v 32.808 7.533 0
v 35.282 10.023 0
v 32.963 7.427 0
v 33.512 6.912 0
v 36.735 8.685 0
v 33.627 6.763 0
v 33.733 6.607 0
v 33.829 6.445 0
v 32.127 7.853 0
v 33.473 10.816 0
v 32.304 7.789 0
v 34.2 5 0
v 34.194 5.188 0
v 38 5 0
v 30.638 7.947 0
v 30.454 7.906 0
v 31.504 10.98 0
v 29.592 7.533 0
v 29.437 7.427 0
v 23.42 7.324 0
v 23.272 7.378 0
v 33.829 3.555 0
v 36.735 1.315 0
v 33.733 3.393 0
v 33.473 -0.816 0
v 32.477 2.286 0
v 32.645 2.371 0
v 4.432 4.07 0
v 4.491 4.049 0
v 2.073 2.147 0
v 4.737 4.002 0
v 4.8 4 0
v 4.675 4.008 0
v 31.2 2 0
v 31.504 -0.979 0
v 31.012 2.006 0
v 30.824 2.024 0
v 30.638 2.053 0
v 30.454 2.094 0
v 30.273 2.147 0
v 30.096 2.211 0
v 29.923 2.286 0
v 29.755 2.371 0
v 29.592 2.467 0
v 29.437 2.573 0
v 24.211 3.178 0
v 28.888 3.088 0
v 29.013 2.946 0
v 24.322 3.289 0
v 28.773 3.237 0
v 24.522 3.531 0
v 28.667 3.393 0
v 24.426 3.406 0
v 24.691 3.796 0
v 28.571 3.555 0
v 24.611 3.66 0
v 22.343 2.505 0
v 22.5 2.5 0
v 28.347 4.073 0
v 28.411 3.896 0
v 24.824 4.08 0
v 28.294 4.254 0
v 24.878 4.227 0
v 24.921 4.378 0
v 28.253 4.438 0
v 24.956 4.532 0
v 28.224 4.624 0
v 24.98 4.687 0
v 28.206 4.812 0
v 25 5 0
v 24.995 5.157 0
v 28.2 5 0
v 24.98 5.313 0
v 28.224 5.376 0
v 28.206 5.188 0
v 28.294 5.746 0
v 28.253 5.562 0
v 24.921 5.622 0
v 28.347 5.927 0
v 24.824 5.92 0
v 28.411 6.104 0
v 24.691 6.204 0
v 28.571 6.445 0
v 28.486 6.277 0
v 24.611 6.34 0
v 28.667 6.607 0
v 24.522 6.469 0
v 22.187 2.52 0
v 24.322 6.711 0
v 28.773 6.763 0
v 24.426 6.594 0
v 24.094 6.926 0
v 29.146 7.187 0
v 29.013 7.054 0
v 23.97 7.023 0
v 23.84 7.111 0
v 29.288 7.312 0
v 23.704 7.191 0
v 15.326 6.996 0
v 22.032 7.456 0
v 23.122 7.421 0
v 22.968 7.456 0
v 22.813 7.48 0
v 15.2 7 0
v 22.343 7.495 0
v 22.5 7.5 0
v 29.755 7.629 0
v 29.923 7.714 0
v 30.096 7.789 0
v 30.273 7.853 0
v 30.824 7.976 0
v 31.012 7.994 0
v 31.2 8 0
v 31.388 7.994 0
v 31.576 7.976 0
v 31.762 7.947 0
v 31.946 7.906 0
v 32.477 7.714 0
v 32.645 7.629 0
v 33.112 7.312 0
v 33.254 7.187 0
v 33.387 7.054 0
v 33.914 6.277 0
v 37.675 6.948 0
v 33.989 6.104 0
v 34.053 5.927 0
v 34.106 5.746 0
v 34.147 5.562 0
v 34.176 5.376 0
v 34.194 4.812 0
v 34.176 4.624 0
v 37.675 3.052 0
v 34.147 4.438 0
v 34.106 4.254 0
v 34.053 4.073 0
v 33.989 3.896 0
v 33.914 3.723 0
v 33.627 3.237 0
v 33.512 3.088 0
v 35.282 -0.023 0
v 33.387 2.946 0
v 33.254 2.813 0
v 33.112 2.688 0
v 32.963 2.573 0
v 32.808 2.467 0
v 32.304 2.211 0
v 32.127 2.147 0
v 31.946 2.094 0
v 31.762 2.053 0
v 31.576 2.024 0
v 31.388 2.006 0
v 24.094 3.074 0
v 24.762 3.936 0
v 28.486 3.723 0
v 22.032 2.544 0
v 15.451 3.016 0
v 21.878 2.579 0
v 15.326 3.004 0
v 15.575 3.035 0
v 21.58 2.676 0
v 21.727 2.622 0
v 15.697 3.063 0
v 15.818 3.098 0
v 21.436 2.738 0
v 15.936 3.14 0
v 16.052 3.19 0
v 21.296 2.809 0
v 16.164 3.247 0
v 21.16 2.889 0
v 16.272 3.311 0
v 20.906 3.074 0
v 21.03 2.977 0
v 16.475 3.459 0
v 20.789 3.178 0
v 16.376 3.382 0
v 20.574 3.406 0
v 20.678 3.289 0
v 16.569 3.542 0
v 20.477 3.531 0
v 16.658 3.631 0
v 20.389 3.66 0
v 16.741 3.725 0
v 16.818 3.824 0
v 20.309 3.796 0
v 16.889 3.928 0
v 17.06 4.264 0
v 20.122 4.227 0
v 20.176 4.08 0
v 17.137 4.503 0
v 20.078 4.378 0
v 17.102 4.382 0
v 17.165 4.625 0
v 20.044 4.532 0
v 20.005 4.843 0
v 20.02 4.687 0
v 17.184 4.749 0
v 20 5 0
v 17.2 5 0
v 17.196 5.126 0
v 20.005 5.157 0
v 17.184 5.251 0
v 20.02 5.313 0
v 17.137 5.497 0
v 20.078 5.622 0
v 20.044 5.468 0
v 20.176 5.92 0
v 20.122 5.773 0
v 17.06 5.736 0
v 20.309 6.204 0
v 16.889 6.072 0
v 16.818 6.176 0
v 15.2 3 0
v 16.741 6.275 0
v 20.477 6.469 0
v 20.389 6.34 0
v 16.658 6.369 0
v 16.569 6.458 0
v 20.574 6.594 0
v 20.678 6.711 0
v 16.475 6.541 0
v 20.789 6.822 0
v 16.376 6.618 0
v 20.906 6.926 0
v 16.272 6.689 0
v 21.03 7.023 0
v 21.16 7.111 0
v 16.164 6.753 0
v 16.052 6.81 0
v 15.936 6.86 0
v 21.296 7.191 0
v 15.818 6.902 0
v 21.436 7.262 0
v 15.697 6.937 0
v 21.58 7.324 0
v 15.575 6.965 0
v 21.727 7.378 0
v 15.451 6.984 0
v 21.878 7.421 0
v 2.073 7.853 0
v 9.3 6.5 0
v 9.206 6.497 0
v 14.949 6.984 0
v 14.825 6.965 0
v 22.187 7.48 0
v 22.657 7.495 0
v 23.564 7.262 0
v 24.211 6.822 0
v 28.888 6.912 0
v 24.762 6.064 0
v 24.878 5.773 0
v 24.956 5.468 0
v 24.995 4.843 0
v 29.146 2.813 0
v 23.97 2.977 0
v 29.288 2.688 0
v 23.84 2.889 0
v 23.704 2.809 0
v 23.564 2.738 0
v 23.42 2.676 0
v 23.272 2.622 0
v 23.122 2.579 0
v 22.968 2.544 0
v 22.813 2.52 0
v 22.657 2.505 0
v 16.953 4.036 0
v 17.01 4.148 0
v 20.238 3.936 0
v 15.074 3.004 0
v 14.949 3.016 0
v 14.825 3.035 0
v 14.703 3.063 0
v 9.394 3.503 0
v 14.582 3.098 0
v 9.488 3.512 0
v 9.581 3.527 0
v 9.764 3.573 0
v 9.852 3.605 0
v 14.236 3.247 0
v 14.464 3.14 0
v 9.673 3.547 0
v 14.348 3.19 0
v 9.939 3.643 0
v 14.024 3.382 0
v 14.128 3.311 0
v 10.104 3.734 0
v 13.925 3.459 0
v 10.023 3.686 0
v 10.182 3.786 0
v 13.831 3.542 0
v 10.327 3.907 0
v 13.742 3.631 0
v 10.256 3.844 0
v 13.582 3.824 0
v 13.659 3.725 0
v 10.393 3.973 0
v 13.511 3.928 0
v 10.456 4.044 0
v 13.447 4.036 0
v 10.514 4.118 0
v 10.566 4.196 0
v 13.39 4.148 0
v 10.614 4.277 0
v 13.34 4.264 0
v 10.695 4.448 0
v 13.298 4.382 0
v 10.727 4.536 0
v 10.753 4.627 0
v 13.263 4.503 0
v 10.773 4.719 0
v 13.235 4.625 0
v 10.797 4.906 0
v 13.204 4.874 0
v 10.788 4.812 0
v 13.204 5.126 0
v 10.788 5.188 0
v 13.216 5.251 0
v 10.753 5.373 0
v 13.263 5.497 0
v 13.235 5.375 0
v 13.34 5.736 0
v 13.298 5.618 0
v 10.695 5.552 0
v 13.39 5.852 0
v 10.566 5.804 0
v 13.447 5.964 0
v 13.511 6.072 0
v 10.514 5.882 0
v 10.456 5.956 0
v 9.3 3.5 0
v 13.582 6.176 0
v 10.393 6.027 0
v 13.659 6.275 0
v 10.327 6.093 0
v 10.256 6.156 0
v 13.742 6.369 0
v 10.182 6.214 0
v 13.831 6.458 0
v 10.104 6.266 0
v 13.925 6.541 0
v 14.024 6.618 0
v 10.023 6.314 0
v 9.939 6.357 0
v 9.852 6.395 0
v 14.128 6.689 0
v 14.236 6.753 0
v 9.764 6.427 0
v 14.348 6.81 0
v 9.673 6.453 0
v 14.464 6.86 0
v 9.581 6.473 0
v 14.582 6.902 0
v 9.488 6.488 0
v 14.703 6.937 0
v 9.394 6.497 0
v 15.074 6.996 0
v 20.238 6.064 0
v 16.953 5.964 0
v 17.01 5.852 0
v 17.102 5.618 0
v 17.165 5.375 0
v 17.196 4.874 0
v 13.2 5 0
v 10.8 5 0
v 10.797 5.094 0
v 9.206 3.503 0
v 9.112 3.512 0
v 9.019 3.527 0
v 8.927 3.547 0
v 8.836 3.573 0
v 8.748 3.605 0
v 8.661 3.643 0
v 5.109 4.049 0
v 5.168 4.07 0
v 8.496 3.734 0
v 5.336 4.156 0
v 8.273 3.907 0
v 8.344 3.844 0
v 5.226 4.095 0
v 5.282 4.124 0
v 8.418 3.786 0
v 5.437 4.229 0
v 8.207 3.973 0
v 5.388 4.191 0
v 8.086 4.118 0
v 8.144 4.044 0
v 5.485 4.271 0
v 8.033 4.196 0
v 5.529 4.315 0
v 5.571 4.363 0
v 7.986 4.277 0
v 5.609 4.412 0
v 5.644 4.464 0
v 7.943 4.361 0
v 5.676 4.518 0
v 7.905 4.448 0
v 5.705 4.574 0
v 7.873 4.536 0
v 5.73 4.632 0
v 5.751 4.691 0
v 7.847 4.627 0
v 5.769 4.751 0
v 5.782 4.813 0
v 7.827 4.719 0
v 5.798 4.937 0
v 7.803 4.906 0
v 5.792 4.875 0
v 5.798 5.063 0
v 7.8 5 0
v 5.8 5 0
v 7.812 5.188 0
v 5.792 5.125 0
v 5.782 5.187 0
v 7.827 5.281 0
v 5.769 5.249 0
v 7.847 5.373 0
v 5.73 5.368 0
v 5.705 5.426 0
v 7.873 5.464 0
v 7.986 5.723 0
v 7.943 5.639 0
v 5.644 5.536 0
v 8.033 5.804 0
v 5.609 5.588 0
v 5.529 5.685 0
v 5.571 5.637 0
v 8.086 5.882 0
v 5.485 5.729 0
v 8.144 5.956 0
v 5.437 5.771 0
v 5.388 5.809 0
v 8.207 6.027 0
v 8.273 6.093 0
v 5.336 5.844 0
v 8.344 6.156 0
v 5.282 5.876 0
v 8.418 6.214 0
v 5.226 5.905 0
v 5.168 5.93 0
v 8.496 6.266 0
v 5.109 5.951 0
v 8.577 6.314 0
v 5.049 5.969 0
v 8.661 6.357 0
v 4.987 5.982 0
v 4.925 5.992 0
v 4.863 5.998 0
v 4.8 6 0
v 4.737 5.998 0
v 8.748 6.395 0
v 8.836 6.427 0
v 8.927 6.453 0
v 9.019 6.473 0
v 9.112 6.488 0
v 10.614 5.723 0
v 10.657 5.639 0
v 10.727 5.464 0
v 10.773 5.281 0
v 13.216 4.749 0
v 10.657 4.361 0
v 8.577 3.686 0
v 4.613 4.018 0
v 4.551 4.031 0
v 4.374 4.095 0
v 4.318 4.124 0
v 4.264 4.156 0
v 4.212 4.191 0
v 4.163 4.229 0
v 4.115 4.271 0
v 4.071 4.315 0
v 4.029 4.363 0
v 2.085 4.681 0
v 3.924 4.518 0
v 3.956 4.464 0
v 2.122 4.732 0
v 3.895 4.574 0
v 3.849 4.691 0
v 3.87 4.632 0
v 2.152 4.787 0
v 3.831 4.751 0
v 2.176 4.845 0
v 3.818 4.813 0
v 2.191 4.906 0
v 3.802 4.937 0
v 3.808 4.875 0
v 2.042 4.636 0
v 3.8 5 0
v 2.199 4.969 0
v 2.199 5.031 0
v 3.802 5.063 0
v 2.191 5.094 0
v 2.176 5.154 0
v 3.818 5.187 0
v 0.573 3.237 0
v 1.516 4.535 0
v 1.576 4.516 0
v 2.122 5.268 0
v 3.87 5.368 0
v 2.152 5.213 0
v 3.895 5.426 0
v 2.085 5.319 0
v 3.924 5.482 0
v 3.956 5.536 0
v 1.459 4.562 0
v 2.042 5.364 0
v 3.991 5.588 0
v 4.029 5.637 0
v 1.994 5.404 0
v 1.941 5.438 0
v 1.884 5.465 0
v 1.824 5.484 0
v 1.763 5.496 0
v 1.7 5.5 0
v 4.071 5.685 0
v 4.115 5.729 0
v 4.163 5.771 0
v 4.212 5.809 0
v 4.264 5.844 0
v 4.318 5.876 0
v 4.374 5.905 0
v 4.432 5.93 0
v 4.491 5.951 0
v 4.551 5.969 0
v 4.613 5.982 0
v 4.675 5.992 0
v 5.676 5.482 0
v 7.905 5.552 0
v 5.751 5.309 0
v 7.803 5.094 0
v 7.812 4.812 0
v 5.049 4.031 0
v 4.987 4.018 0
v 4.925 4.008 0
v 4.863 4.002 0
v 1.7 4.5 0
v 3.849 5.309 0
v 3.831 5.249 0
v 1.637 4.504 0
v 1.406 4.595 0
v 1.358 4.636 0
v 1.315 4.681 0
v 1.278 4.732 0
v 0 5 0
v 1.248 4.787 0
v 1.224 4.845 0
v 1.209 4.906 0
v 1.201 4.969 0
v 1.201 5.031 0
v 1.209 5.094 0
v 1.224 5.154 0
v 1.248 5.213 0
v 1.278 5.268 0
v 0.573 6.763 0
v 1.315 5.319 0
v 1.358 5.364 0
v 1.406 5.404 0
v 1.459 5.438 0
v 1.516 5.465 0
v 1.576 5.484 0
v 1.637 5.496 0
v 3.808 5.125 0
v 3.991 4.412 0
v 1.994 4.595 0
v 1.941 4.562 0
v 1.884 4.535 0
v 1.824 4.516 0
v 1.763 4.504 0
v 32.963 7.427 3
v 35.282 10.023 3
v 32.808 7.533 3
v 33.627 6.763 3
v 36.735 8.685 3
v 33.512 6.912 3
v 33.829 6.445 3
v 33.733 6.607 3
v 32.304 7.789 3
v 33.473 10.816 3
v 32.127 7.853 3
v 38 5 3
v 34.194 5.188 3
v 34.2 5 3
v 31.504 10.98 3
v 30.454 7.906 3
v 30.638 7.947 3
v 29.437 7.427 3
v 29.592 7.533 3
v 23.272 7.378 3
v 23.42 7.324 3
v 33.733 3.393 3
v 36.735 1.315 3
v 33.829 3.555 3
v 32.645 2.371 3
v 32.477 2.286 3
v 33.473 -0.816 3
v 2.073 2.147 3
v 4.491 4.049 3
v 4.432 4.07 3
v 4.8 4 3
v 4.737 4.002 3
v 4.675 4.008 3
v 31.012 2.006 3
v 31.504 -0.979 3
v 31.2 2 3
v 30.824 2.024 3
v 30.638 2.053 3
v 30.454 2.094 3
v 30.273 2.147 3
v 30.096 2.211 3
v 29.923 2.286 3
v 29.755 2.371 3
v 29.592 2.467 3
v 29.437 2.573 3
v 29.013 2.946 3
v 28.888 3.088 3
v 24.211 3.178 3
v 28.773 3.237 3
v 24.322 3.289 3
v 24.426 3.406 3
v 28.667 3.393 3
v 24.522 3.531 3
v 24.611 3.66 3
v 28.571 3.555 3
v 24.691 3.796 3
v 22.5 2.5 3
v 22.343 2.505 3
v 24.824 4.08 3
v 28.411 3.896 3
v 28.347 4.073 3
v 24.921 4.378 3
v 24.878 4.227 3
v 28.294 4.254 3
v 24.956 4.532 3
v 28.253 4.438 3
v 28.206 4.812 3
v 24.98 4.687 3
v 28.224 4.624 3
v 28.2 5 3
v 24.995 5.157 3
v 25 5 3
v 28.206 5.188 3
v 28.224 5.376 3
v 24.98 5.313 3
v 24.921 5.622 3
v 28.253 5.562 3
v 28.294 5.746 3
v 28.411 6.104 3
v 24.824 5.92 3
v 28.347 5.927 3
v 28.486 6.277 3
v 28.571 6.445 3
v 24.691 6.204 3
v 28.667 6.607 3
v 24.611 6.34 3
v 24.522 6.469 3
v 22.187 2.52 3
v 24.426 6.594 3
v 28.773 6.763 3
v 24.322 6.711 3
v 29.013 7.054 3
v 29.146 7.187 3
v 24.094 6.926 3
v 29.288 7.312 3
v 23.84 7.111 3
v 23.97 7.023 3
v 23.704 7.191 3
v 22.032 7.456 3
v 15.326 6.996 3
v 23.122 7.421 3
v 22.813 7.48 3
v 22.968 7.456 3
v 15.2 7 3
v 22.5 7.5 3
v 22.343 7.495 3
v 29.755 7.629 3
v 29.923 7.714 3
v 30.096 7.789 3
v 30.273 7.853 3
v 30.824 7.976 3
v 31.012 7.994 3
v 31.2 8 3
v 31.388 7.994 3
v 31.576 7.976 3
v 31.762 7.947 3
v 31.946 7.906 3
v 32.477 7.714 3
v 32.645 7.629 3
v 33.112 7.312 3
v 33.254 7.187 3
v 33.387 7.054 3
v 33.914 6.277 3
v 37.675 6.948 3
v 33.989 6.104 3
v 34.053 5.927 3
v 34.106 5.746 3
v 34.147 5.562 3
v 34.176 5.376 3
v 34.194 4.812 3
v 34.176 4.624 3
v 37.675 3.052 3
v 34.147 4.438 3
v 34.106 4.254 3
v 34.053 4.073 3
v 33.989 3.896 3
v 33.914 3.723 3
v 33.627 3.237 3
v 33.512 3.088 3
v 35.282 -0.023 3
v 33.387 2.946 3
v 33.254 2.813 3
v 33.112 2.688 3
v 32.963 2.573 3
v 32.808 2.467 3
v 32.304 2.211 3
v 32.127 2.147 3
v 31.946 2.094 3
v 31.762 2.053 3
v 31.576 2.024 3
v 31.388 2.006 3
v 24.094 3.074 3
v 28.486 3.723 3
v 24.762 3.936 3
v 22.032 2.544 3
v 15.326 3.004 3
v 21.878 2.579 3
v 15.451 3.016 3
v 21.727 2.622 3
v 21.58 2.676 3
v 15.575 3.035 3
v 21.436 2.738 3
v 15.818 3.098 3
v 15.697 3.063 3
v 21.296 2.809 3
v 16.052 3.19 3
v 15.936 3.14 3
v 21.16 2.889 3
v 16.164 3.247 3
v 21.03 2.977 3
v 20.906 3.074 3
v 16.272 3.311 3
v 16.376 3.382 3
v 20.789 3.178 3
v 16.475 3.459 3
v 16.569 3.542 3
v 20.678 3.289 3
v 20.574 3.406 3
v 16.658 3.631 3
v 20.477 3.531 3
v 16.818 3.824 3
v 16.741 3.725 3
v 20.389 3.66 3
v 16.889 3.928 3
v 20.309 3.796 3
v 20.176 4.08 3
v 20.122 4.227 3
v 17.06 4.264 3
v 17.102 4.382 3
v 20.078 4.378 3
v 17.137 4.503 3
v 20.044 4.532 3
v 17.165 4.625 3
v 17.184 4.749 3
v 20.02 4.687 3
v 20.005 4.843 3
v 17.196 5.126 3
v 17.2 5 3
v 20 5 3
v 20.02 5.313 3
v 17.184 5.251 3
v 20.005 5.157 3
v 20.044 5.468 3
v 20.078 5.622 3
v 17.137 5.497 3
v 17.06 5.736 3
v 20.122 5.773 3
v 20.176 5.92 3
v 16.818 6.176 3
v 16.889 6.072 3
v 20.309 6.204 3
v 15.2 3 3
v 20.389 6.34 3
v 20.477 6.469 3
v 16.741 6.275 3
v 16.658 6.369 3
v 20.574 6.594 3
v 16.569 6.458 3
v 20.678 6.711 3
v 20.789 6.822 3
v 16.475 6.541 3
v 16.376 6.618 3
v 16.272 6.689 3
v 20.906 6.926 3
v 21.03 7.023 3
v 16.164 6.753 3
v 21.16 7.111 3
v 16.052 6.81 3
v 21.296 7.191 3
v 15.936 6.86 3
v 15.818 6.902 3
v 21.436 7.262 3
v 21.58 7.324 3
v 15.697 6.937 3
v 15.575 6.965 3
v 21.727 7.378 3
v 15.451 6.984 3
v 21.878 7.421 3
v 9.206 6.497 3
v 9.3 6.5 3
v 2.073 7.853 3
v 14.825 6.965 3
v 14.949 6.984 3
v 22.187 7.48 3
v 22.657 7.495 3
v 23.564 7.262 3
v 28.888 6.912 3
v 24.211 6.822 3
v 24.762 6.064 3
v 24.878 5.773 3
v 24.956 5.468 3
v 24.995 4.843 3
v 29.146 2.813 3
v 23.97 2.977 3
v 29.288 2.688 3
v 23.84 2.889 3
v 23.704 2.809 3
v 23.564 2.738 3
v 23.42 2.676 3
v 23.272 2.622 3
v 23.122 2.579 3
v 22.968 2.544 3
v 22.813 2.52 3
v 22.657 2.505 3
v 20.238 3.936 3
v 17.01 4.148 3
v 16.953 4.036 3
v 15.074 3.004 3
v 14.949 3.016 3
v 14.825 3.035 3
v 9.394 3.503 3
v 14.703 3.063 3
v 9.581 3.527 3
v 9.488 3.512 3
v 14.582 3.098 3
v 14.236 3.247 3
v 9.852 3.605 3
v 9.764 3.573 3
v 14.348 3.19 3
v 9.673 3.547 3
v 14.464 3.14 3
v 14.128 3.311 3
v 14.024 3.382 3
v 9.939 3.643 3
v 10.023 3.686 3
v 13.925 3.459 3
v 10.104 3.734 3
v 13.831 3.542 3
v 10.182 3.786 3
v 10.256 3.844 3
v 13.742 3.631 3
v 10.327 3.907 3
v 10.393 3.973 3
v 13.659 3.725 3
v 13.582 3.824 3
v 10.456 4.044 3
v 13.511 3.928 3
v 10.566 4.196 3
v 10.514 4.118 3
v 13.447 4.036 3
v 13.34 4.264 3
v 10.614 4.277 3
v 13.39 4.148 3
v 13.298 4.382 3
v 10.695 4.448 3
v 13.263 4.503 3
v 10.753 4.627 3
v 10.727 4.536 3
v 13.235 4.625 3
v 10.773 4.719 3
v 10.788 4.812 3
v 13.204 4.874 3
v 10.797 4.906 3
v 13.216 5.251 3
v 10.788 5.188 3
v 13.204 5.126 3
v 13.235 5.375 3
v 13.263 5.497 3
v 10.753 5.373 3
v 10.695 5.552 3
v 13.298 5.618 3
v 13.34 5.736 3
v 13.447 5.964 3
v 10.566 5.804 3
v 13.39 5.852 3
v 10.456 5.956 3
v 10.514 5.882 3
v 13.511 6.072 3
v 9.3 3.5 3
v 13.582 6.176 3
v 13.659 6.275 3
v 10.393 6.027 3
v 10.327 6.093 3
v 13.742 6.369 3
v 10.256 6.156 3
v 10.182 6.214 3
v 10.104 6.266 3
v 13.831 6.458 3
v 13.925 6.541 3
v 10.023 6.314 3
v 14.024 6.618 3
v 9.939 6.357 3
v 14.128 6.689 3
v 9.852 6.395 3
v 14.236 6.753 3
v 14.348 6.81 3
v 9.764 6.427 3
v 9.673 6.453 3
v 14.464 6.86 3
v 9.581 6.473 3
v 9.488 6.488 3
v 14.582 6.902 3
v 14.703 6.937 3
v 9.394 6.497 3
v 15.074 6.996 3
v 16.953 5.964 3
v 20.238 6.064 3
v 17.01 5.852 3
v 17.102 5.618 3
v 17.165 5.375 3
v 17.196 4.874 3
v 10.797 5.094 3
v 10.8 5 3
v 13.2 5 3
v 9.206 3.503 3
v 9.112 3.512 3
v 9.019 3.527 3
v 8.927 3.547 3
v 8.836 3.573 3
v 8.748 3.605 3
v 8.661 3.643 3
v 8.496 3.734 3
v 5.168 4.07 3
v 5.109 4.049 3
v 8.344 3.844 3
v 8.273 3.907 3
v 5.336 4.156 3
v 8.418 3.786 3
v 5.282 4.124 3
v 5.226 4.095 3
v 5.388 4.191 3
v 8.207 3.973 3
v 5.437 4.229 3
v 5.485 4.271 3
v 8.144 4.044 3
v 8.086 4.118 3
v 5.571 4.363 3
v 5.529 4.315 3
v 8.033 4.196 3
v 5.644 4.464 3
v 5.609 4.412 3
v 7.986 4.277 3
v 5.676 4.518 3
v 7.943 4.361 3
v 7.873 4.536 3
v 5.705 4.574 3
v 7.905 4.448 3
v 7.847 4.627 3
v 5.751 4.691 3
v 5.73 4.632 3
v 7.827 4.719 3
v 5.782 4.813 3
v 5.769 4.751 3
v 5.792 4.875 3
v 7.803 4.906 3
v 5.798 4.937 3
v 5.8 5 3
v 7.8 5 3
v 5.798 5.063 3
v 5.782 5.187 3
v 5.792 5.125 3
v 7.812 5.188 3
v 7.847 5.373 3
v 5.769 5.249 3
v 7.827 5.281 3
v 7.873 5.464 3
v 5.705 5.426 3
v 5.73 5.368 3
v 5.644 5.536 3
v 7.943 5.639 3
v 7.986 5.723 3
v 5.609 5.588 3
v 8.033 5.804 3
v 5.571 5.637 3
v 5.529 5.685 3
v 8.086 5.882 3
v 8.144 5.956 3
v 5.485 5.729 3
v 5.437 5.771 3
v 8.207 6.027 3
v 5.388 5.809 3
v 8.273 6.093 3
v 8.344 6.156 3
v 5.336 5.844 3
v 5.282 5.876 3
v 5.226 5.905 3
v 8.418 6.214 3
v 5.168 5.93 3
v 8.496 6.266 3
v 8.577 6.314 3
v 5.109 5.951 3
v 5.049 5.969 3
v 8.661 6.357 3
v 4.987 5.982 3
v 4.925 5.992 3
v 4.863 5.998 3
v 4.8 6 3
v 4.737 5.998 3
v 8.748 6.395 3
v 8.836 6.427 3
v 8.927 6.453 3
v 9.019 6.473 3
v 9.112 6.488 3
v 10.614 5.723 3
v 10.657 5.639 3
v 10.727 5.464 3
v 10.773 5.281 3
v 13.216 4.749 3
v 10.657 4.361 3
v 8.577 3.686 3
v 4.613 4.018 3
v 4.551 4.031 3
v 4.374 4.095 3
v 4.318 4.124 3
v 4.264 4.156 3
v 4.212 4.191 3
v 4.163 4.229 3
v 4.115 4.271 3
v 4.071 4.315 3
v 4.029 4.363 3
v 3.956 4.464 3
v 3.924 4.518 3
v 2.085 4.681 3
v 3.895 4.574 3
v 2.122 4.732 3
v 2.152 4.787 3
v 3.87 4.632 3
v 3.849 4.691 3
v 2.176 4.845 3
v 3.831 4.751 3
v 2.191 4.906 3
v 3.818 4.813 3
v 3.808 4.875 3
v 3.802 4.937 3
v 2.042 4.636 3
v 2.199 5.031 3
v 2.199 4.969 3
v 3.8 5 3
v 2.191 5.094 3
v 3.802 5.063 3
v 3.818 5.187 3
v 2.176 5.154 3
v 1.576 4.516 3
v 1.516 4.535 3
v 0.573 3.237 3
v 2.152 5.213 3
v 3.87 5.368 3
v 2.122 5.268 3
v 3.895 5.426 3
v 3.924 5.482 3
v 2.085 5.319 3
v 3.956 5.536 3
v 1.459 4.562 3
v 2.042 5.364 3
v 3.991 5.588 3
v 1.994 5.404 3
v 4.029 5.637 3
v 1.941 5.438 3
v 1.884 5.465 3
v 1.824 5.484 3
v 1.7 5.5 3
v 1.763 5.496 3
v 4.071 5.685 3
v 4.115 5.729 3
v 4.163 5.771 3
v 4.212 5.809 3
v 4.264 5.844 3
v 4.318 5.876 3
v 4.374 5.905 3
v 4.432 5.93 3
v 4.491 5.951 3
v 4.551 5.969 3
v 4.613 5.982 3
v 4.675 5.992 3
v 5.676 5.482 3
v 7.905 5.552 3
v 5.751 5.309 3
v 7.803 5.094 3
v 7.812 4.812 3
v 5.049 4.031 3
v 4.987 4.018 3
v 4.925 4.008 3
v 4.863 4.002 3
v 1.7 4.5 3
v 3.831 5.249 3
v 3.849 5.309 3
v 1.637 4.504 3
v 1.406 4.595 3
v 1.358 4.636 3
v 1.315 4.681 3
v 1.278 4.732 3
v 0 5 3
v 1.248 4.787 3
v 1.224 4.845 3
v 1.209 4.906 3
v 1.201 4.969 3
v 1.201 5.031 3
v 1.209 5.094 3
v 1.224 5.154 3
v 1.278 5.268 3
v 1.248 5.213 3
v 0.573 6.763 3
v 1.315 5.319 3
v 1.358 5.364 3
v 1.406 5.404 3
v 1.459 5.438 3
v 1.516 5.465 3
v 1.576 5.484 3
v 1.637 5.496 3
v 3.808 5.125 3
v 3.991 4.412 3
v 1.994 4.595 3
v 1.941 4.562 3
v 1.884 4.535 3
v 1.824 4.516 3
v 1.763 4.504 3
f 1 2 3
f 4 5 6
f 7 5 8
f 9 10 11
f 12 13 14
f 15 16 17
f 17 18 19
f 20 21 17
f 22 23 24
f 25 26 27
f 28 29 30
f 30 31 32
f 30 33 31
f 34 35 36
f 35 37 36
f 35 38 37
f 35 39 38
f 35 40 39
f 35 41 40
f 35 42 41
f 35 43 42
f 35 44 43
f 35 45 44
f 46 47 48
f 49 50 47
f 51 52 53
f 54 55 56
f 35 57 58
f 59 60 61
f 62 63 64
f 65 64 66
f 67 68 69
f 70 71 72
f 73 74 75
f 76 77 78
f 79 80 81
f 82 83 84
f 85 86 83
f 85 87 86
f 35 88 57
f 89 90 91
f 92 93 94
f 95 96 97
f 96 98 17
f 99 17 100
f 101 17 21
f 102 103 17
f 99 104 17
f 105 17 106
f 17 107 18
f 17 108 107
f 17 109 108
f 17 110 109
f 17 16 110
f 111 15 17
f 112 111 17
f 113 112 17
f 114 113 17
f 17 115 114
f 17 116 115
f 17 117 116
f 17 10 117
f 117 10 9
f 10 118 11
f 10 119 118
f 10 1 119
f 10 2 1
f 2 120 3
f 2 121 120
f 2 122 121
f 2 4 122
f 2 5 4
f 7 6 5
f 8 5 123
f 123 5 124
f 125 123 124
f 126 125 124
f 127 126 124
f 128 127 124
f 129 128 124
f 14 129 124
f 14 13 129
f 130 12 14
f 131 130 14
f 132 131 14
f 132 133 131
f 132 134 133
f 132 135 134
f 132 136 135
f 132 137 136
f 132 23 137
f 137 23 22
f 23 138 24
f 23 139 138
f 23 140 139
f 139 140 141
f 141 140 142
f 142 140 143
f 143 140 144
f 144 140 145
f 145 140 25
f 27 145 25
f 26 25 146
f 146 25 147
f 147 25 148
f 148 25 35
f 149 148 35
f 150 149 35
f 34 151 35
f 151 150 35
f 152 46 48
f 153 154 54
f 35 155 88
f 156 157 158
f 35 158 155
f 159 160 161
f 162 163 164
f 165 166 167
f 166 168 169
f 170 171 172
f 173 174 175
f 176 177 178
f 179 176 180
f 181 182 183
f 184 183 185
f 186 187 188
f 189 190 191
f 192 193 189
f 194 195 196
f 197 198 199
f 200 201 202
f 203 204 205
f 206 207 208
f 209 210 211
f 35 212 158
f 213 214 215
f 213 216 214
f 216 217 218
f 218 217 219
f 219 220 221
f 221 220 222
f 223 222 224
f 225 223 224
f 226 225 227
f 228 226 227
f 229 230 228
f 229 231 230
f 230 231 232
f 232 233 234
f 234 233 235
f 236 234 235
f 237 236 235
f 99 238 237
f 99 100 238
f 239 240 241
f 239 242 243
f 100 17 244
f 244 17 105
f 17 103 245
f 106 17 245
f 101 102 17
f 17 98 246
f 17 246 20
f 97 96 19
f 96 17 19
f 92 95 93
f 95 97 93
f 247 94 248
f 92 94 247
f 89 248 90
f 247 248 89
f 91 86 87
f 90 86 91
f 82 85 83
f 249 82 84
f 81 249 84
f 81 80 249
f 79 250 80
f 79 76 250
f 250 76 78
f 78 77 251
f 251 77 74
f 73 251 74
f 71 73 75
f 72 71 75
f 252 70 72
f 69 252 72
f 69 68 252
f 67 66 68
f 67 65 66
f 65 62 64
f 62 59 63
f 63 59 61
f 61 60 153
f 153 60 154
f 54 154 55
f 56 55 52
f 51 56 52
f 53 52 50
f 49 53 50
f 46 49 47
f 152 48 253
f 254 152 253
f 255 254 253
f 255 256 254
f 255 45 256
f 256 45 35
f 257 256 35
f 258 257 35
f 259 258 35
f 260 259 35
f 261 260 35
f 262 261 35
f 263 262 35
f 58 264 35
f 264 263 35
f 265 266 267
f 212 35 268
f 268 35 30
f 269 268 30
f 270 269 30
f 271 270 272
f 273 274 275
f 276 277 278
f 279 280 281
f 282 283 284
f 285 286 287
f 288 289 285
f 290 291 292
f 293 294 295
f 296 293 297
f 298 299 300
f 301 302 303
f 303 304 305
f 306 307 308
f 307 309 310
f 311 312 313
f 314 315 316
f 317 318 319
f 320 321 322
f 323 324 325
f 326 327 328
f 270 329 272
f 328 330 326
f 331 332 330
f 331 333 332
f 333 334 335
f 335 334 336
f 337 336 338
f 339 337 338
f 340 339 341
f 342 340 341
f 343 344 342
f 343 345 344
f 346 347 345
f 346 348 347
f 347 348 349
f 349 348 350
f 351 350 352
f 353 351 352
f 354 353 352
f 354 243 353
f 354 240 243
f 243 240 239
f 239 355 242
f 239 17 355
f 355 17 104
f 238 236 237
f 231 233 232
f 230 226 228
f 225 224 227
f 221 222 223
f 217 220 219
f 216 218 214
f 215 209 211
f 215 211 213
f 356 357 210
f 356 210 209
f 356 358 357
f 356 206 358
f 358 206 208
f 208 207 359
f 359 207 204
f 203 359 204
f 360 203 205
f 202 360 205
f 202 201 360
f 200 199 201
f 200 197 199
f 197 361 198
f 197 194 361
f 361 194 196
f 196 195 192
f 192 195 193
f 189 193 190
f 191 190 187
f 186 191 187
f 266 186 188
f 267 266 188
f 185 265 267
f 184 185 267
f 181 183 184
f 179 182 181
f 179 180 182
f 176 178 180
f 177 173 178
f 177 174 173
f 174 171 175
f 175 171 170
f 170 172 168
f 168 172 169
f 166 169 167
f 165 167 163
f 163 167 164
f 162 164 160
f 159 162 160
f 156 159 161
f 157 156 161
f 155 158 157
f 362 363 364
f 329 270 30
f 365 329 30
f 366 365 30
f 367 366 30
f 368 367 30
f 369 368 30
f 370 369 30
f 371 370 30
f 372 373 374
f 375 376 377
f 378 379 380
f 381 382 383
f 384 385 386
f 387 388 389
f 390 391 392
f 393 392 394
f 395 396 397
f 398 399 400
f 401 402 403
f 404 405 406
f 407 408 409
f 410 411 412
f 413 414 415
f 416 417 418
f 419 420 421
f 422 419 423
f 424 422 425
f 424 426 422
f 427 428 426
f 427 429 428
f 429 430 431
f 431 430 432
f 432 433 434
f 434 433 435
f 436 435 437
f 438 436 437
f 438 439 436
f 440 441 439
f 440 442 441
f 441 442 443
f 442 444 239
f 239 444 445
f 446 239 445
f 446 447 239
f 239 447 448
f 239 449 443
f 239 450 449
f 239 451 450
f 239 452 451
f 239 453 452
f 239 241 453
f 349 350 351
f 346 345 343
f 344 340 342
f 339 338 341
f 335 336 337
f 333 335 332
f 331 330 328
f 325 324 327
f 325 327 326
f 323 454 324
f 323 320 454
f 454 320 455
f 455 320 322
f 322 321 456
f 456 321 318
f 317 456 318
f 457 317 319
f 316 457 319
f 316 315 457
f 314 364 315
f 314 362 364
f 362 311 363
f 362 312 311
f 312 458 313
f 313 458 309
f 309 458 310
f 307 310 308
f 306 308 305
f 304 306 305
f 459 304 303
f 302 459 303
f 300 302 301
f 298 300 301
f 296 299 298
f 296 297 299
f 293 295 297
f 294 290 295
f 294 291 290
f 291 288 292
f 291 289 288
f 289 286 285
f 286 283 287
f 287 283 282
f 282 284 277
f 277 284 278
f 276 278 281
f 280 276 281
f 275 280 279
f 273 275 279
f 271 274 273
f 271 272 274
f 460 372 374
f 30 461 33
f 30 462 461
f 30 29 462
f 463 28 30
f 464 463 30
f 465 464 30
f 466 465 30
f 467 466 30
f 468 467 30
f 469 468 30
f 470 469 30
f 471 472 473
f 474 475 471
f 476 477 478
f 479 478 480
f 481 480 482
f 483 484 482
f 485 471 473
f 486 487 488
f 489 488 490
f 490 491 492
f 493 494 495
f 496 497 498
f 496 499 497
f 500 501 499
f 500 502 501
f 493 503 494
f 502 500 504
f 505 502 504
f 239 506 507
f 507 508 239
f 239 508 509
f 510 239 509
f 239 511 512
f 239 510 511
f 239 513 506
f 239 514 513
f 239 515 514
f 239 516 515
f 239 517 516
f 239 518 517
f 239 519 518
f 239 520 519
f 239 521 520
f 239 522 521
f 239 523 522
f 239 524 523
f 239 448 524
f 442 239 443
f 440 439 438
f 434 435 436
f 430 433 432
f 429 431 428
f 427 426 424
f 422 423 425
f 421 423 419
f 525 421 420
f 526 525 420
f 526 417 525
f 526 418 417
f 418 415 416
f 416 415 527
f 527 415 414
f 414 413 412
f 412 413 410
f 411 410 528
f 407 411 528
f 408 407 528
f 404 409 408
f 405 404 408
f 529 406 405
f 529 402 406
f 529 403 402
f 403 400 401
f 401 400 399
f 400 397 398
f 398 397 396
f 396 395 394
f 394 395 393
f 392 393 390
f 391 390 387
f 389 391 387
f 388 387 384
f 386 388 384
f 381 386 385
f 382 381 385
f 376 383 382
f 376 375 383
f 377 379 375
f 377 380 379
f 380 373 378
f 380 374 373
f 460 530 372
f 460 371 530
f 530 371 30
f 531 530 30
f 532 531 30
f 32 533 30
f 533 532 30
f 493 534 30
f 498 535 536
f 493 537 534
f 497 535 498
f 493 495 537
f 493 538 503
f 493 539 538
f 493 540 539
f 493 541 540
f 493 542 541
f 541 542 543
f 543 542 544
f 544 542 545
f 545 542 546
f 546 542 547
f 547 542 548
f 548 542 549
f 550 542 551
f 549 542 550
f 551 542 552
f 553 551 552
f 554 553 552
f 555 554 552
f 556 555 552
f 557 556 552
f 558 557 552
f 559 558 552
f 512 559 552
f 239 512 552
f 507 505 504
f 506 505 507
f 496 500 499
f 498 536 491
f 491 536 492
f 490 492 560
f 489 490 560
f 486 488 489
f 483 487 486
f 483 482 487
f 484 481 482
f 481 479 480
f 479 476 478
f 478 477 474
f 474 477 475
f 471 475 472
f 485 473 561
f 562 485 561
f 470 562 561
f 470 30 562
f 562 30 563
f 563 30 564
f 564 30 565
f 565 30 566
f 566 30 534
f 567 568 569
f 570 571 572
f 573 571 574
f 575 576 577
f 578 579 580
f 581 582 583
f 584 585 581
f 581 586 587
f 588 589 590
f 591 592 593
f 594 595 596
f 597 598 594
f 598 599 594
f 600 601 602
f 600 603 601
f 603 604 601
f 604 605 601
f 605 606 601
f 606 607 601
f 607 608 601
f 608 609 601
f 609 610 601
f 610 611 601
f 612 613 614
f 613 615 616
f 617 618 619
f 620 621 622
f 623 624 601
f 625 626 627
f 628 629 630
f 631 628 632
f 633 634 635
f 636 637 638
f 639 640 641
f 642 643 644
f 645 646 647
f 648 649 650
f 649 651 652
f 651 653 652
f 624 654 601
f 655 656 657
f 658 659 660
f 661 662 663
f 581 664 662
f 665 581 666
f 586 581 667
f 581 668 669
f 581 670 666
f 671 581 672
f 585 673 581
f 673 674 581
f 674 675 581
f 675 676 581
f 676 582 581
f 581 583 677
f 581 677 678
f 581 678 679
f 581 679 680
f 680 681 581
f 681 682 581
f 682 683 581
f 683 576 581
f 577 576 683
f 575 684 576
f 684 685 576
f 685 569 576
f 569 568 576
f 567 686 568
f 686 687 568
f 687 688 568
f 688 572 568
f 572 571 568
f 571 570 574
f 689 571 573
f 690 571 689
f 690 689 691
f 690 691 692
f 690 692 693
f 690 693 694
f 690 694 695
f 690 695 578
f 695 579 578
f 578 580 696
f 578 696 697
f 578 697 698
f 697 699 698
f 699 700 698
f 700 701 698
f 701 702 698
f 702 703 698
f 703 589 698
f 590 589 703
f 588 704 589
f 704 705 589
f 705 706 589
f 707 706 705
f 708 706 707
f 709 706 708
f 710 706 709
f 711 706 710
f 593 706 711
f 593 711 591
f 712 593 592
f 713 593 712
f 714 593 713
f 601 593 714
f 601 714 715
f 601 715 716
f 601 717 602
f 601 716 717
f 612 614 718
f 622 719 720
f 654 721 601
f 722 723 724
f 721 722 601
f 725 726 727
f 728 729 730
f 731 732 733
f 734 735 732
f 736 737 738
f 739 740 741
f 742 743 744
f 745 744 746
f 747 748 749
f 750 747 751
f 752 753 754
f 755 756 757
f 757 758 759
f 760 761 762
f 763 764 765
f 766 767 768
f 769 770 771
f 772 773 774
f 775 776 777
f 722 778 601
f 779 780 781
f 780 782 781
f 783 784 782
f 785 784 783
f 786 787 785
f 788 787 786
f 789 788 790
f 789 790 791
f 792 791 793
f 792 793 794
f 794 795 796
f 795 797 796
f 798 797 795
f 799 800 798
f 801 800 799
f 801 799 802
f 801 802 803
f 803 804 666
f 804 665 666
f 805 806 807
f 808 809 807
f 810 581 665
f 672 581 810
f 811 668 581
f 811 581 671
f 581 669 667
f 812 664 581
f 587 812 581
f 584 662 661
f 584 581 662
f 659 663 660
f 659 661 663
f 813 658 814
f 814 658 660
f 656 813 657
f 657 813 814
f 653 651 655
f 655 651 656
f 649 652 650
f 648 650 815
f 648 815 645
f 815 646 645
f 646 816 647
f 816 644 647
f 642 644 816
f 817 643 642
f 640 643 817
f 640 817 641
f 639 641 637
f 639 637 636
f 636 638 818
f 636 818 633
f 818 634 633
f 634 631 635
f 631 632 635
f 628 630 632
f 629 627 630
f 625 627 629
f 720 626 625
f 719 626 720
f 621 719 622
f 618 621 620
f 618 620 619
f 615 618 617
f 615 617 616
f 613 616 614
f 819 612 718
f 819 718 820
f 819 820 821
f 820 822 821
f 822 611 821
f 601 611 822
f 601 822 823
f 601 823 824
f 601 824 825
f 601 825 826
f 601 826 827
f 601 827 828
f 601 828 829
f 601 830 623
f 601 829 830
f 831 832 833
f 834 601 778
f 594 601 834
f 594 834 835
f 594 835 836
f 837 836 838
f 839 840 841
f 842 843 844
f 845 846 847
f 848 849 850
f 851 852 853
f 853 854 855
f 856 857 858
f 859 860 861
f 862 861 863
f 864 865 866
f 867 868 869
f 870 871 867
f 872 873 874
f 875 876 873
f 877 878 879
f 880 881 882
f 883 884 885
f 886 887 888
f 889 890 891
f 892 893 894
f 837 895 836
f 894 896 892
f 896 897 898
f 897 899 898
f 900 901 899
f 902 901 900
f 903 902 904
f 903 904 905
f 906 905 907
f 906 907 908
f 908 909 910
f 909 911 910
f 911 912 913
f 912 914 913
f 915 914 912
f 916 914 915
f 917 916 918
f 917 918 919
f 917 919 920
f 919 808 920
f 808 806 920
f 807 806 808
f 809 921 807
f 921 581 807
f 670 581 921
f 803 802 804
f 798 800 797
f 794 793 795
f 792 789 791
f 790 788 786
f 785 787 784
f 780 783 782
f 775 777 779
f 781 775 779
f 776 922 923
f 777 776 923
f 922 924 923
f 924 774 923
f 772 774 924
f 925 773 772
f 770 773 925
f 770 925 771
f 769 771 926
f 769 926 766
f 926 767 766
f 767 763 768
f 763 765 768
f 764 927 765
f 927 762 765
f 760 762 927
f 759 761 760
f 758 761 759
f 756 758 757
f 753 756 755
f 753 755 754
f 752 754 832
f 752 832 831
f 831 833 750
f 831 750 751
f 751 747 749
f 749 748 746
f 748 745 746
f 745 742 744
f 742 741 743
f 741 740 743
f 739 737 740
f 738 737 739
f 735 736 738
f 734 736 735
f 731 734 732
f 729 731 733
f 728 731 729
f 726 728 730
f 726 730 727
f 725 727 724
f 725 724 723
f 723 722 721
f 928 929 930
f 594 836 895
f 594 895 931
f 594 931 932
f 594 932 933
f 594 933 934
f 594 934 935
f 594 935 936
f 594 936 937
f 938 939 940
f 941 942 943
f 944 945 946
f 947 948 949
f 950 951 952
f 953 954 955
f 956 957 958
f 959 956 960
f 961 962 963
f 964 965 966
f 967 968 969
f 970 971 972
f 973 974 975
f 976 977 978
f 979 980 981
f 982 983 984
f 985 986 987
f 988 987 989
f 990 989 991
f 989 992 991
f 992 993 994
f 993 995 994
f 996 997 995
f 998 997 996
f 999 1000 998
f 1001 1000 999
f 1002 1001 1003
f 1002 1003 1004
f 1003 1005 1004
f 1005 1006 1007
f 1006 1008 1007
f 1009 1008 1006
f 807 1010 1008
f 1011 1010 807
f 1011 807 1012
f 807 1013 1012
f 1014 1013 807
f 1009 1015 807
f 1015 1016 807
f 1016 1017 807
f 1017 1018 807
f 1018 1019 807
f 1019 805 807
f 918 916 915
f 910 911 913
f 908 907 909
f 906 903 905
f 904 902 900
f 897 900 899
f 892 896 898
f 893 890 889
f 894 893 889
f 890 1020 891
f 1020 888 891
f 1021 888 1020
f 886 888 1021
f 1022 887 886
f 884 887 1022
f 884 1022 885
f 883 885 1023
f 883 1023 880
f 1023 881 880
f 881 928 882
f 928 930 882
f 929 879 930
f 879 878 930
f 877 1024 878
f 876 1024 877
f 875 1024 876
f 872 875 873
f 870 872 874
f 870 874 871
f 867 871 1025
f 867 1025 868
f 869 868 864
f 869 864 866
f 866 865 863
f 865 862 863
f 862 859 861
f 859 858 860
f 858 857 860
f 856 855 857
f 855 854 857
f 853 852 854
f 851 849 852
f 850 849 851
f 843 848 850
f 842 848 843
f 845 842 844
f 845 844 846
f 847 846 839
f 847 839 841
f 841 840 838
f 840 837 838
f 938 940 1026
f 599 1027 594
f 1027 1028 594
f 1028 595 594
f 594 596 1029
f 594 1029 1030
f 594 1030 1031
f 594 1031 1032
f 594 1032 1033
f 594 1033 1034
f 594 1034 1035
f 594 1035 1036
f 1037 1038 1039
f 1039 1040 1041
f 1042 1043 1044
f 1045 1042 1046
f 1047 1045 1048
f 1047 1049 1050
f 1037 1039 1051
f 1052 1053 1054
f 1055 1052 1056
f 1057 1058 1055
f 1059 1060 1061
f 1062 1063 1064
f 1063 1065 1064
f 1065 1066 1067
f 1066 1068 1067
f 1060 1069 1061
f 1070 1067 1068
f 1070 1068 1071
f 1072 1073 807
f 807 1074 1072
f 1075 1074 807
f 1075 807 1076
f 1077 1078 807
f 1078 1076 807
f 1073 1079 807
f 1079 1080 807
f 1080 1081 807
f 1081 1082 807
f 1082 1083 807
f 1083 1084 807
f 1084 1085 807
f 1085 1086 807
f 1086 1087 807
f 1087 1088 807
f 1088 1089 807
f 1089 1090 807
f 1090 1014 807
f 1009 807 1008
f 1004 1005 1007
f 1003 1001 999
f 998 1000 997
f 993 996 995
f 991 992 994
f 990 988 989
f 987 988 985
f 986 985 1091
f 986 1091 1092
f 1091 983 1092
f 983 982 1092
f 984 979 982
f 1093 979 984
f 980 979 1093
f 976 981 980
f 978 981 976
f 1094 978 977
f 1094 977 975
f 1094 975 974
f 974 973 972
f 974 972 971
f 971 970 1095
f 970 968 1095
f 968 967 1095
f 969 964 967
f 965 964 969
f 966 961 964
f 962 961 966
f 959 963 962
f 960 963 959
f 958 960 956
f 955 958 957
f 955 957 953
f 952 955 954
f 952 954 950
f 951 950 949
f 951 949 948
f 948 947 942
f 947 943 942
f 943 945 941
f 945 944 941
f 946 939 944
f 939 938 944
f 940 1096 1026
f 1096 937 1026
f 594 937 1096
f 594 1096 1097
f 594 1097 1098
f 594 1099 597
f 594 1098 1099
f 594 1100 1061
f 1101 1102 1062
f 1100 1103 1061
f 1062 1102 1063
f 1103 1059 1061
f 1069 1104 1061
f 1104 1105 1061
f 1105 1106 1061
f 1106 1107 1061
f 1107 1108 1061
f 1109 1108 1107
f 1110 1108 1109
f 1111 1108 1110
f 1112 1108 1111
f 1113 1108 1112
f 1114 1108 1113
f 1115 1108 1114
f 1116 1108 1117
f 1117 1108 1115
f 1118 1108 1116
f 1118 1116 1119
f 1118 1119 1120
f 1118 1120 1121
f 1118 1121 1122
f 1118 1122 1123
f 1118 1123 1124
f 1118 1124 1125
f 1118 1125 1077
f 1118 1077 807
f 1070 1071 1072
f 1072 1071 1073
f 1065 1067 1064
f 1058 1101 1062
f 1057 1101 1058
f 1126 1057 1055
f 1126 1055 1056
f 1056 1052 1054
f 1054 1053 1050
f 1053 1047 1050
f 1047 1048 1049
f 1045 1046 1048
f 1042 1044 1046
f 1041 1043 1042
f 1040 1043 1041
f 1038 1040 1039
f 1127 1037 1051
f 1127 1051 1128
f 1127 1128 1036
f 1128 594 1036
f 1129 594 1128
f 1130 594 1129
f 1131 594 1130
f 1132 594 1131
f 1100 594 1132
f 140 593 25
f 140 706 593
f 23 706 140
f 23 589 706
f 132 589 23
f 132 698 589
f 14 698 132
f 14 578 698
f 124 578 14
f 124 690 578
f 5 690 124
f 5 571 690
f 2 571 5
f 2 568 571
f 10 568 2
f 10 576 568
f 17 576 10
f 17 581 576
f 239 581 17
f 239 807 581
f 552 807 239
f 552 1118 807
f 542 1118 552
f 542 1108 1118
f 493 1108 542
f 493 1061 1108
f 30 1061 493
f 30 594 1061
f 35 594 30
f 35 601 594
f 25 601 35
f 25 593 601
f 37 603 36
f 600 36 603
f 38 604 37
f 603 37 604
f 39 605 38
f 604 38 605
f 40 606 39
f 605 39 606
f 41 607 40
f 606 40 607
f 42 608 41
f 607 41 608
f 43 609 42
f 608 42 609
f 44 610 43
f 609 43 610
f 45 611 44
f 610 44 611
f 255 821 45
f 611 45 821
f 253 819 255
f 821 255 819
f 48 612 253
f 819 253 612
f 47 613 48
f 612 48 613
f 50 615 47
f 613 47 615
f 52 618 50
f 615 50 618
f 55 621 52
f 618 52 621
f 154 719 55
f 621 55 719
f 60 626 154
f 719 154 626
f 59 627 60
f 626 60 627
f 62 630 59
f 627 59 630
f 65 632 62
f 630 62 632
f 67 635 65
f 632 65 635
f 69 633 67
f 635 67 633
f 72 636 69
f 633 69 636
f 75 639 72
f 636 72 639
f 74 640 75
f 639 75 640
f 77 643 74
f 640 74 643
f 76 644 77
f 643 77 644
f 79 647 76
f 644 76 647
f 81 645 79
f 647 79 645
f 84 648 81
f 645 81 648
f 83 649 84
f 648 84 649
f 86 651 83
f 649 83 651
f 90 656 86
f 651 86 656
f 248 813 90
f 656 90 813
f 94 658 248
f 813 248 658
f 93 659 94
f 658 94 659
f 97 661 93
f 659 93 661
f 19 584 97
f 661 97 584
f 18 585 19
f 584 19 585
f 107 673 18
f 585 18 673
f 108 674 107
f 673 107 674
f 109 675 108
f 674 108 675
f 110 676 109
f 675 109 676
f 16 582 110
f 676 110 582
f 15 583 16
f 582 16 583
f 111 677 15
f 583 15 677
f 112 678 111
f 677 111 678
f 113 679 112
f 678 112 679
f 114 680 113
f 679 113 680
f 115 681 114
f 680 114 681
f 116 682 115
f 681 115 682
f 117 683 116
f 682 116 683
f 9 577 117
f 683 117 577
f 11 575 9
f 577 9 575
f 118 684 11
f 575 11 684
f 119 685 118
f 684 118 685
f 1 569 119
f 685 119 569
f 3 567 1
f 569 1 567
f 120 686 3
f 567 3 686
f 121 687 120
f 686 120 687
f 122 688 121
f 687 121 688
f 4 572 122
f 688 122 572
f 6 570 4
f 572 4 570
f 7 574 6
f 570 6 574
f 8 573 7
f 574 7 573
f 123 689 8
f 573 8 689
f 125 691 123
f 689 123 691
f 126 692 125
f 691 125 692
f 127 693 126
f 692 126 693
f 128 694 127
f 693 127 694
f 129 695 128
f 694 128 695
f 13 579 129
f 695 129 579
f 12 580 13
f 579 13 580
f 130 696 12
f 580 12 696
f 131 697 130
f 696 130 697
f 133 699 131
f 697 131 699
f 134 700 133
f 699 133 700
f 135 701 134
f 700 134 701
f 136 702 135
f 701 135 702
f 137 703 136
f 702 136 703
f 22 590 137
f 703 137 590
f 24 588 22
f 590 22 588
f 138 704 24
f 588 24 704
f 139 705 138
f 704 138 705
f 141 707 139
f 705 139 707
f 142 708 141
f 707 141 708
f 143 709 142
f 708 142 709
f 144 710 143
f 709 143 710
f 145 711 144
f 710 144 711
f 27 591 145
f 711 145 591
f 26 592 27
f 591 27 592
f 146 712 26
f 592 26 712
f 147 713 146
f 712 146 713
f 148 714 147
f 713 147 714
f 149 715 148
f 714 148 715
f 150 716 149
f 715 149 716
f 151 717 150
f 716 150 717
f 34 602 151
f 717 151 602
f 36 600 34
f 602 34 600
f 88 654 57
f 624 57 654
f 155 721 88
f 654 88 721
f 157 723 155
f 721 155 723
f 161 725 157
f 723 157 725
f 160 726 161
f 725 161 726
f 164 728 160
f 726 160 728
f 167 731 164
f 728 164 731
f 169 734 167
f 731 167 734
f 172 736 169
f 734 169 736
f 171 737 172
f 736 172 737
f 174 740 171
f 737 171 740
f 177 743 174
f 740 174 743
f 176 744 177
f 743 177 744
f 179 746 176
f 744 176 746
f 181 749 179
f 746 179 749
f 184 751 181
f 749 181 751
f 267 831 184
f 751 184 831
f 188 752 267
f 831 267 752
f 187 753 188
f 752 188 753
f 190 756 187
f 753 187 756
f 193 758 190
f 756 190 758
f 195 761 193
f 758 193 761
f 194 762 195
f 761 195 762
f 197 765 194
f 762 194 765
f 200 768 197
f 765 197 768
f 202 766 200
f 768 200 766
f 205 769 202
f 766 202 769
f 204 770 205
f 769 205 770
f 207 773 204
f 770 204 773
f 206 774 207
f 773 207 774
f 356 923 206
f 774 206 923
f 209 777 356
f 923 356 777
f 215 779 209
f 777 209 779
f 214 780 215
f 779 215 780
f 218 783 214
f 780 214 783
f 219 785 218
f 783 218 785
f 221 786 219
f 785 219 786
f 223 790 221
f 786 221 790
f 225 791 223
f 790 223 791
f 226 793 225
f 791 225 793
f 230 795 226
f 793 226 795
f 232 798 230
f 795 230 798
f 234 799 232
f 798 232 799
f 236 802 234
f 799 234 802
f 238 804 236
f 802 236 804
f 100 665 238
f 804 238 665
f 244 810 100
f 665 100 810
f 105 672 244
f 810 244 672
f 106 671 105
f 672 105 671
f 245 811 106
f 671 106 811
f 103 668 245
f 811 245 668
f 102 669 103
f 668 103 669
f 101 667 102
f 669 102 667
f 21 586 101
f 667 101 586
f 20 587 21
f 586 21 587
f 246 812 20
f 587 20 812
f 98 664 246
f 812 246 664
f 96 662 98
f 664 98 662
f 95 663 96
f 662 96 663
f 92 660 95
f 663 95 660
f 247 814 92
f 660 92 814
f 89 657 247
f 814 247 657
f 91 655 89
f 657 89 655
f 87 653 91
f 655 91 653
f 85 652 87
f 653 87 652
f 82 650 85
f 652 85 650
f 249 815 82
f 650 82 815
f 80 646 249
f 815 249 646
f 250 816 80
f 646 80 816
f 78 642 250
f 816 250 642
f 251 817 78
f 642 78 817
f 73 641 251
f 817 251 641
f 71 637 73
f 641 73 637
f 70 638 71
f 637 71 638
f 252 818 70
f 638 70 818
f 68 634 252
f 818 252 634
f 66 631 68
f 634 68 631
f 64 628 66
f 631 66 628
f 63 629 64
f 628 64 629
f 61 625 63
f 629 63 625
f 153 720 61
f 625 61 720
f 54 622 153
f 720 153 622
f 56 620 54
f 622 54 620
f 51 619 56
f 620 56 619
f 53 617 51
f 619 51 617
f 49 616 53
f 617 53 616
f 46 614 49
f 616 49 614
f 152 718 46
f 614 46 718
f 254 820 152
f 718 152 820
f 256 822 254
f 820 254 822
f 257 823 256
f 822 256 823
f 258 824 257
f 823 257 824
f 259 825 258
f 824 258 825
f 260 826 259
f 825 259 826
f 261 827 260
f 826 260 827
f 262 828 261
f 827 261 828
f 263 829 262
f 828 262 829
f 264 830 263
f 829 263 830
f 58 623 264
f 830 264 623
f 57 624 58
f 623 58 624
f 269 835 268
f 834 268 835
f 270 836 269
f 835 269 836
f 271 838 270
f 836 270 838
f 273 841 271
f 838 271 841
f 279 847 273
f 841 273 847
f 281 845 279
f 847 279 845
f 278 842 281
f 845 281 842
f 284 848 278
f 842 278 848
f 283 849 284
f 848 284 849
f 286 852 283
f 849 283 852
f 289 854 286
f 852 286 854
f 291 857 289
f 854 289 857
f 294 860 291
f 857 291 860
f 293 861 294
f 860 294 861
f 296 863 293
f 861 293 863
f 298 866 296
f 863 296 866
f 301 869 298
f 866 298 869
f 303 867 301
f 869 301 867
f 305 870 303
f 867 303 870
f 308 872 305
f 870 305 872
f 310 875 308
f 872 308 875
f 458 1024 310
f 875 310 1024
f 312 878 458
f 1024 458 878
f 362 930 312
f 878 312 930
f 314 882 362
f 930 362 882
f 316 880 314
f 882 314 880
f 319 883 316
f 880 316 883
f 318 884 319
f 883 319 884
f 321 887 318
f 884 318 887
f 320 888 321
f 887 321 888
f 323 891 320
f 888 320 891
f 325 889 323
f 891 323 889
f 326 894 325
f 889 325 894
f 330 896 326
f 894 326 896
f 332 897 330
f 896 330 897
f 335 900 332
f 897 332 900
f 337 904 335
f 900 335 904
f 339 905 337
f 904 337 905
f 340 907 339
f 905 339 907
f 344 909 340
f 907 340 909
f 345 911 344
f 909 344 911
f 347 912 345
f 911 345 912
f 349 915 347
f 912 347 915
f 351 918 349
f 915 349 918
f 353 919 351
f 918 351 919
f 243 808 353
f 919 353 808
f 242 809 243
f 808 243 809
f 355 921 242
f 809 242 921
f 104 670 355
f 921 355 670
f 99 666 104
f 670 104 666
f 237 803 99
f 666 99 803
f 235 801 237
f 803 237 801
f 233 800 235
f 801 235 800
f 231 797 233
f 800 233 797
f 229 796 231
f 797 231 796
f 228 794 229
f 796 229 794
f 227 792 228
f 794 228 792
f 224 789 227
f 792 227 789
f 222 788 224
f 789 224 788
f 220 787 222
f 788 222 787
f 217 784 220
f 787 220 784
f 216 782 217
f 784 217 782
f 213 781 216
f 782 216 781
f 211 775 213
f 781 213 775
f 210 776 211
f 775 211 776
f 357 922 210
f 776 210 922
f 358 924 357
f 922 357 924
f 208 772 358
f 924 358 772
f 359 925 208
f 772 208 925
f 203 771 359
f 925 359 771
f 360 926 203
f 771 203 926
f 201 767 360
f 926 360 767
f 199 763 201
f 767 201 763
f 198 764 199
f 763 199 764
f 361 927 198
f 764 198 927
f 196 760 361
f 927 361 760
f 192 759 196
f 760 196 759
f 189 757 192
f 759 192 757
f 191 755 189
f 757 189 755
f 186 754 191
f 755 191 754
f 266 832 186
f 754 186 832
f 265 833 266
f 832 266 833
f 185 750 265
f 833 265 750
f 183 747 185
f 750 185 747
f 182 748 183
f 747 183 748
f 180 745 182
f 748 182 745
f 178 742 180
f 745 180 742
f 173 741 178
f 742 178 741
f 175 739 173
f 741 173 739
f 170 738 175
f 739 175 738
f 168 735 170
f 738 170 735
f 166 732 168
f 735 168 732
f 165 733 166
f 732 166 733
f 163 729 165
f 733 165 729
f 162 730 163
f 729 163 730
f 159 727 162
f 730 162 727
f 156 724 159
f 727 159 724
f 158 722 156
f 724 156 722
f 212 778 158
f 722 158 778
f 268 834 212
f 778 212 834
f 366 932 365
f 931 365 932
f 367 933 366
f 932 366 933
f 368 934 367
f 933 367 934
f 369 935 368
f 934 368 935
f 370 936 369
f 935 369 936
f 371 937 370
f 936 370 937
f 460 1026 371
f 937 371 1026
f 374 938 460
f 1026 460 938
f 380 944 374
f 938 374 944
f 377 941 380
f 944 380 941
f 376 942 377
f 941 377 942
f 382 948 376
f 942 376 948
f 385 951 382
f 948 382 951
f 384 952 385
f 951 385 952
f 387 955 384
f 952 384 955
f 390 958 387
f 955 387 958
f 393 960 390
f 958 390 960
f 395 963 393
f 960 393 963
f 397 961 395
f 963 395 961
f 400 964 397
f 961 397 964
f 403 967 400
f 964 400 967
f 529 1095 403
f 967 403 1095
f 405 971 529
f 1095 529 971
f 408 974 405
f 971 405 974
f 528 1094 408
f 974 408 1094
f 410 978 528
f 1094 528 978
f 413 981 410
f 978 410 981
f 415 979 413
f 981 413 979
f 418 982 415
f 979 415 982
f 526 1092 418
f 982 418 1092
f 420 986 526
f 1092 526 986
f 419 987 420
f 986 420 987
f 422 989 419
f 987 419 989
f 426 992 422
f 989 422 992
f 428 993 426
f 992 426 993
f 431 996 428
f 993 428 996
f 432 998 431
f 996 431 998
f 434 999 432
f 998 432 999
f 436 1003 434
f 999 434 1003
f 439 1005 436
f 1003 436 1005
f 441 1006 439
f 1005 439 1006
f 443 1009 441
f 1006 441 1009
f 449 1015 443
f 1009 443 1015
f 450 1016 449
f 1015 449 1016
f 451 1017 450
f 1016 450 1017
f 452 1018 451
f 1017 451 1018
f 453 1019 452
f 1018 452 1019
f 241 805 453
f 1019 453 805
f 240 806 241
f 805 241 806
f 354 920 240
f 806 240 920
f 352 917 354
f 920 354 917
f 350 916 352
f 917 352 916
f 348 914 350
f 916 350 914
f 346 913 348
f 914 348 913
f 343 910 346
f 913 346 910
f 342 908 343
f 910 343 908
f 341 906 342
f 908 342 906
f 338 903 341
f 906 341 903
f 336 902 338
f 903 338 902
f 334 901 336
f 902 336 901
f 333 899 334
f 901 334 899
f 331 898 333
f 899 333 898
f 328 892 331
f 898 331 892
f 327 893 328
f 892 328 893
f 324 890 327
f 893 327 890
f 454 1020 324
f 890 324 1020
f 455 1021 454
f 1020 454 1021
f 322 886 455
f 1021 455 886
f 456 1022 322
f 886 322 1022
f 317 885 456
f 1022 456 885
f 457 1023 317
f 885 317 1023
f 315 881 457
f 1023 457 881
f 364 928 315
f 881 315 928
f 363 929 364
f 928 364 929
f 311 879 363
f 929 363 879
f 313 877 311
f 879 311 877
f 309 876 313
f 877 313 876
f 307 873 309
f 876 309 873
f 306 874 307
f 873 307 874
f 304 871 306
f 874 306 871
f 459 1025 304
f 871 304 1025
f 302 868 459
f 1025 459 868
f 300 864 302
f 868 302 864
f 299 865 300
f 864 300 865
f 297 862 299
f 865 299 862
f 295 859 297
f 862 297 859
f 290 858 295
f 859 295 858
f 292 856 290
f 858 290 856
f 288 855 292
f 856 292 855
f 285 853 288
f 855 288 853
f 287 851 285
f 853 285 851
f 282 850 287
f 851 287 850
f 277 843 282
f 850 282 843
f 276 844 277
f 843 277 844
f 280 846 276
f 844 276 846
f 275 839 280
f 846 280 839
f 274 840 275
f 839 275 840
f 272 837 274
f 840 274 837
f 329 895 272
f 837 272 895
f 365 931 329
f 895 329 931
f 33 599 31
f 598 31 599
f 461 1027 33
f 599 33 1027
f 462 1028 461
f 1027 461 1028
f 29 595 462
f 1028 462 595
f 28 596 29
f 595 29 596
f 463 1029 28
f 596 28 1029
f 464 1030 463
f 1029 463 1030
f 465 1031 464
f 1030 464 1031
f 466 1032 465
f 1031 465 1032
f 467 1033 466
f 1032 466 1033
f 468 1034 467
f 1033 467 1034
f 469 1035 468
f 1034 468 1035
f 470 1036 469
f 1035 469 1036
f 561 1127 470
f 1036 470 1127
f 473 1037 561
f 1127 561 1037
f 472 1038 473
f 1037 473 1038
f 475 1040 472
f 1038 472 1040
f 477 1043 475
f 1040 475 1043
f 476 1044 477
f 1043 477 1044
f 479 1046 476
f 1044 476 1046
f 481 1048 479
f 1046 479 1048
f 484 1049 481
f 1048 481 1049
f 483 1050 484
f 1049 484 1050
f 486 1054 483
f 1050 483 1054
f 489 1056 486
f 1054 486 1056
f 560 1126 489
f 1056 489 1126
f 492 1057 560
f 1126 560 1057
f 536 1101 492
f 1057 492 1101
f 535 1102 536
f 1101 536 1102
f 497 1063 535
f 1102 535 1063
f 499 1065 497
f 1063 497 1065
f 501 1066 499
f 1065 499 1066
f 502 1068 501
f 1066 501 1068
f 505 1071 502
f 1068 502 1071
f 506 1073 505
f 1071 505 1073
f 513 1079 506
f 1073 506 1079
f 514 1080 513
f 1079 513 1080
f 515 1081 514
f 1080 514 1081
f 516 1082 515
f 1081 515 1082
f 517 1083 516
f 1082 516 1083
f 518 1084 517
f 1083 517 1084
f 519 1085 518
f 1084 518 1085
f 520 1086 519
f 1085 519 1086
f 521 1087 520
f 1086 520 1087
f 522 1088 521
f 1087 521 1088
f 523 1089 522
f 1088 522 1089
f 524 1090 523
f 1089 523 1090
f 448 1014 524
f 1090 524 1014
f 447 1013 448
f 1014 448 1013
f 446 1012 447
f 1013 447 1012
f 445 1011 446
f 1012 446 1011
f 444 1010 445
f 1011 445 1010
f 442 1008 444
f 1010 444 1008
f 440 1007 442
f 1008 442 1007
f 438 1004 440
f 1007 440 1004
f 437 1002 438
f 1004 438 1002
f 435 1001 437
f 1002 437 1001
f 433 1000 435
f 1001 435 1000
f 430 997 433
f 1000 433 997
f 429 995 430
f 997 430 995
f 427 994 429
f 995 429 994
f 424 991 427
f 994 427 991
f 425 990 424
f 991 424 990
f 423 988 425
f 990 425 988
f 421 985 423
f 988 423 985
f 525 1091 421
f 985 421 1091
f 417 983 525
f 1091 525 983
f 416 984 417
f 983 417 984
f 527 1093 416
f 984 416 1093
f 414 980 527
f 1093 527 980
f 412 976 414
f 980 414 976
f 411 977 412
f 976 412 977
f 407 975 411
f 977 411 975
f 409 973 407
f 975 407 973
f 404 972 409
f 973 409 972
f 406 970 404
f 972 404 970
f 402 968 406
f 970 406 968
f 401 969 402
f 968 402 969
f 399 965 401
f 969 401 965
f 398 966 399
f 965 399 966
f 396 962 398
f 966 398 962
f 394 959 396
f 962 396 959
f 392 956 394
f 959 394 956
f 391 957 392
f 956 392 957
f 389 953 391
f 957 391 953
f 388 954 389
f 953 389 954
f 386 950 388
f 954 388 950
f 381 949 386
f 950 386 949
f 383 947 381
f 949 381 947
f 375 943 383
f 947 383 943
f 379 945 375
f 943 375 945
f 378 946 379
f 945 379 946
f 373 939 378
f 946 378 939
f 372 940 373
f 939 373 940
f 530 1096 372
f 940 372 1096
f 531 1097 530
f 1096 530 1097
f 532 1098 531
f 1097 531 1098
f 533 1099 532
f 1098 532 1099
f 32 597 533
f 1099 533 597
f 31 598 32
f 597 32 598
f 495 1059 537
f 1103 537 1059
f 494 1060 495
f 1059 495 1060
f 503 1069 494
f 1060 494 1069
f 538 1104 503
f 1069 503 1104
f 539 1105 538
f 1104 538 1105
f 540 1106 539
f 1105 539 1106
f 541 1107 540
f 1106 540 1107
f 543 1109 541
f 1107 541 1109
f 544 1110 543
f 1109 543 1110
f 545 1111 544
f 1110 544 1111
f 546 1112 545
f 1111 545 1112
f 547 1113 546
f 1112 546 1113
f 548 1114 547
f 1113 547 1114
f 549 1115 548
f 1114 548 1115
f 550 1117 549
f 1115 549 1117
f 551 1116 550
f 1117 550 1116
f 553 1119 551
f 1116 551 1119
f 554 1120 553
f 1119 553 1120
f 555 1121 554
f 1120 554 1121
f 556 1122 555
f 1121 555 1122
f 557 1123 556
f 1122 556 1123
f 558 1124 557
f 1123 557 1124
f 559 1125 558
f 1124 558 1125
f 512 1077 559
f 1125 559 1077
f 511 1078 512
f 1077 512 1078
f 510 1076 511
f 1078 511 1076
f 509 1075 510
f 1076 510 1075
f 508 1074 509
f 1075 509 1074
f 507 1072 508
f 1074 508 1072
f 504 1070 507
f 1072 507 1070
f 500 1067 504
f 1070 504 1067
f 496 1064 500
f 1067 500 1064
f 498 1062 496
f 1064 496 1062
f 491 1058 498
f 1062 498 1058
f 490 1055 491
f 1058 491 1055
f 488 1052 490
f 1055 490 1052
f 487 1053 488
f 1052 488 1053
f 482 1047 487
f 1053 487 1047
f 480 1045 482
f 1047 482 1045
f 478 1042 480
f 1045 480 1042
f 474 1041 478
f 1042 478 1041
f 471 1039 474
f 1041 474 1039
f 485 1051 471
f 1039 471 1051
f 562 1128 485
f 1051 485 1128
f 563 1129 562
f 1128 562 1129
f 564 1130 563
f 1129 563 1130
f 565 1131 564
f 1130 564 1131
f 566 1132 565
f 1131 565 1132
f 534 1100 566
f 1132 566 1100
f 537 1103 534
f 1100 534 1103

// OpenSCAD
module pattern() {
	difference(){
		hull(){
			translate([3, 5]) circle(3, center=false);
			translate([32, 5]) circle(6, center=false);
		}
	//square([36, 10]);
	for(x = [1:6]){
		translate([x*x*.7+x, 5]) circle(d = x, $fn=100);
	}
}
}

linear_extrude(3) pattern();
